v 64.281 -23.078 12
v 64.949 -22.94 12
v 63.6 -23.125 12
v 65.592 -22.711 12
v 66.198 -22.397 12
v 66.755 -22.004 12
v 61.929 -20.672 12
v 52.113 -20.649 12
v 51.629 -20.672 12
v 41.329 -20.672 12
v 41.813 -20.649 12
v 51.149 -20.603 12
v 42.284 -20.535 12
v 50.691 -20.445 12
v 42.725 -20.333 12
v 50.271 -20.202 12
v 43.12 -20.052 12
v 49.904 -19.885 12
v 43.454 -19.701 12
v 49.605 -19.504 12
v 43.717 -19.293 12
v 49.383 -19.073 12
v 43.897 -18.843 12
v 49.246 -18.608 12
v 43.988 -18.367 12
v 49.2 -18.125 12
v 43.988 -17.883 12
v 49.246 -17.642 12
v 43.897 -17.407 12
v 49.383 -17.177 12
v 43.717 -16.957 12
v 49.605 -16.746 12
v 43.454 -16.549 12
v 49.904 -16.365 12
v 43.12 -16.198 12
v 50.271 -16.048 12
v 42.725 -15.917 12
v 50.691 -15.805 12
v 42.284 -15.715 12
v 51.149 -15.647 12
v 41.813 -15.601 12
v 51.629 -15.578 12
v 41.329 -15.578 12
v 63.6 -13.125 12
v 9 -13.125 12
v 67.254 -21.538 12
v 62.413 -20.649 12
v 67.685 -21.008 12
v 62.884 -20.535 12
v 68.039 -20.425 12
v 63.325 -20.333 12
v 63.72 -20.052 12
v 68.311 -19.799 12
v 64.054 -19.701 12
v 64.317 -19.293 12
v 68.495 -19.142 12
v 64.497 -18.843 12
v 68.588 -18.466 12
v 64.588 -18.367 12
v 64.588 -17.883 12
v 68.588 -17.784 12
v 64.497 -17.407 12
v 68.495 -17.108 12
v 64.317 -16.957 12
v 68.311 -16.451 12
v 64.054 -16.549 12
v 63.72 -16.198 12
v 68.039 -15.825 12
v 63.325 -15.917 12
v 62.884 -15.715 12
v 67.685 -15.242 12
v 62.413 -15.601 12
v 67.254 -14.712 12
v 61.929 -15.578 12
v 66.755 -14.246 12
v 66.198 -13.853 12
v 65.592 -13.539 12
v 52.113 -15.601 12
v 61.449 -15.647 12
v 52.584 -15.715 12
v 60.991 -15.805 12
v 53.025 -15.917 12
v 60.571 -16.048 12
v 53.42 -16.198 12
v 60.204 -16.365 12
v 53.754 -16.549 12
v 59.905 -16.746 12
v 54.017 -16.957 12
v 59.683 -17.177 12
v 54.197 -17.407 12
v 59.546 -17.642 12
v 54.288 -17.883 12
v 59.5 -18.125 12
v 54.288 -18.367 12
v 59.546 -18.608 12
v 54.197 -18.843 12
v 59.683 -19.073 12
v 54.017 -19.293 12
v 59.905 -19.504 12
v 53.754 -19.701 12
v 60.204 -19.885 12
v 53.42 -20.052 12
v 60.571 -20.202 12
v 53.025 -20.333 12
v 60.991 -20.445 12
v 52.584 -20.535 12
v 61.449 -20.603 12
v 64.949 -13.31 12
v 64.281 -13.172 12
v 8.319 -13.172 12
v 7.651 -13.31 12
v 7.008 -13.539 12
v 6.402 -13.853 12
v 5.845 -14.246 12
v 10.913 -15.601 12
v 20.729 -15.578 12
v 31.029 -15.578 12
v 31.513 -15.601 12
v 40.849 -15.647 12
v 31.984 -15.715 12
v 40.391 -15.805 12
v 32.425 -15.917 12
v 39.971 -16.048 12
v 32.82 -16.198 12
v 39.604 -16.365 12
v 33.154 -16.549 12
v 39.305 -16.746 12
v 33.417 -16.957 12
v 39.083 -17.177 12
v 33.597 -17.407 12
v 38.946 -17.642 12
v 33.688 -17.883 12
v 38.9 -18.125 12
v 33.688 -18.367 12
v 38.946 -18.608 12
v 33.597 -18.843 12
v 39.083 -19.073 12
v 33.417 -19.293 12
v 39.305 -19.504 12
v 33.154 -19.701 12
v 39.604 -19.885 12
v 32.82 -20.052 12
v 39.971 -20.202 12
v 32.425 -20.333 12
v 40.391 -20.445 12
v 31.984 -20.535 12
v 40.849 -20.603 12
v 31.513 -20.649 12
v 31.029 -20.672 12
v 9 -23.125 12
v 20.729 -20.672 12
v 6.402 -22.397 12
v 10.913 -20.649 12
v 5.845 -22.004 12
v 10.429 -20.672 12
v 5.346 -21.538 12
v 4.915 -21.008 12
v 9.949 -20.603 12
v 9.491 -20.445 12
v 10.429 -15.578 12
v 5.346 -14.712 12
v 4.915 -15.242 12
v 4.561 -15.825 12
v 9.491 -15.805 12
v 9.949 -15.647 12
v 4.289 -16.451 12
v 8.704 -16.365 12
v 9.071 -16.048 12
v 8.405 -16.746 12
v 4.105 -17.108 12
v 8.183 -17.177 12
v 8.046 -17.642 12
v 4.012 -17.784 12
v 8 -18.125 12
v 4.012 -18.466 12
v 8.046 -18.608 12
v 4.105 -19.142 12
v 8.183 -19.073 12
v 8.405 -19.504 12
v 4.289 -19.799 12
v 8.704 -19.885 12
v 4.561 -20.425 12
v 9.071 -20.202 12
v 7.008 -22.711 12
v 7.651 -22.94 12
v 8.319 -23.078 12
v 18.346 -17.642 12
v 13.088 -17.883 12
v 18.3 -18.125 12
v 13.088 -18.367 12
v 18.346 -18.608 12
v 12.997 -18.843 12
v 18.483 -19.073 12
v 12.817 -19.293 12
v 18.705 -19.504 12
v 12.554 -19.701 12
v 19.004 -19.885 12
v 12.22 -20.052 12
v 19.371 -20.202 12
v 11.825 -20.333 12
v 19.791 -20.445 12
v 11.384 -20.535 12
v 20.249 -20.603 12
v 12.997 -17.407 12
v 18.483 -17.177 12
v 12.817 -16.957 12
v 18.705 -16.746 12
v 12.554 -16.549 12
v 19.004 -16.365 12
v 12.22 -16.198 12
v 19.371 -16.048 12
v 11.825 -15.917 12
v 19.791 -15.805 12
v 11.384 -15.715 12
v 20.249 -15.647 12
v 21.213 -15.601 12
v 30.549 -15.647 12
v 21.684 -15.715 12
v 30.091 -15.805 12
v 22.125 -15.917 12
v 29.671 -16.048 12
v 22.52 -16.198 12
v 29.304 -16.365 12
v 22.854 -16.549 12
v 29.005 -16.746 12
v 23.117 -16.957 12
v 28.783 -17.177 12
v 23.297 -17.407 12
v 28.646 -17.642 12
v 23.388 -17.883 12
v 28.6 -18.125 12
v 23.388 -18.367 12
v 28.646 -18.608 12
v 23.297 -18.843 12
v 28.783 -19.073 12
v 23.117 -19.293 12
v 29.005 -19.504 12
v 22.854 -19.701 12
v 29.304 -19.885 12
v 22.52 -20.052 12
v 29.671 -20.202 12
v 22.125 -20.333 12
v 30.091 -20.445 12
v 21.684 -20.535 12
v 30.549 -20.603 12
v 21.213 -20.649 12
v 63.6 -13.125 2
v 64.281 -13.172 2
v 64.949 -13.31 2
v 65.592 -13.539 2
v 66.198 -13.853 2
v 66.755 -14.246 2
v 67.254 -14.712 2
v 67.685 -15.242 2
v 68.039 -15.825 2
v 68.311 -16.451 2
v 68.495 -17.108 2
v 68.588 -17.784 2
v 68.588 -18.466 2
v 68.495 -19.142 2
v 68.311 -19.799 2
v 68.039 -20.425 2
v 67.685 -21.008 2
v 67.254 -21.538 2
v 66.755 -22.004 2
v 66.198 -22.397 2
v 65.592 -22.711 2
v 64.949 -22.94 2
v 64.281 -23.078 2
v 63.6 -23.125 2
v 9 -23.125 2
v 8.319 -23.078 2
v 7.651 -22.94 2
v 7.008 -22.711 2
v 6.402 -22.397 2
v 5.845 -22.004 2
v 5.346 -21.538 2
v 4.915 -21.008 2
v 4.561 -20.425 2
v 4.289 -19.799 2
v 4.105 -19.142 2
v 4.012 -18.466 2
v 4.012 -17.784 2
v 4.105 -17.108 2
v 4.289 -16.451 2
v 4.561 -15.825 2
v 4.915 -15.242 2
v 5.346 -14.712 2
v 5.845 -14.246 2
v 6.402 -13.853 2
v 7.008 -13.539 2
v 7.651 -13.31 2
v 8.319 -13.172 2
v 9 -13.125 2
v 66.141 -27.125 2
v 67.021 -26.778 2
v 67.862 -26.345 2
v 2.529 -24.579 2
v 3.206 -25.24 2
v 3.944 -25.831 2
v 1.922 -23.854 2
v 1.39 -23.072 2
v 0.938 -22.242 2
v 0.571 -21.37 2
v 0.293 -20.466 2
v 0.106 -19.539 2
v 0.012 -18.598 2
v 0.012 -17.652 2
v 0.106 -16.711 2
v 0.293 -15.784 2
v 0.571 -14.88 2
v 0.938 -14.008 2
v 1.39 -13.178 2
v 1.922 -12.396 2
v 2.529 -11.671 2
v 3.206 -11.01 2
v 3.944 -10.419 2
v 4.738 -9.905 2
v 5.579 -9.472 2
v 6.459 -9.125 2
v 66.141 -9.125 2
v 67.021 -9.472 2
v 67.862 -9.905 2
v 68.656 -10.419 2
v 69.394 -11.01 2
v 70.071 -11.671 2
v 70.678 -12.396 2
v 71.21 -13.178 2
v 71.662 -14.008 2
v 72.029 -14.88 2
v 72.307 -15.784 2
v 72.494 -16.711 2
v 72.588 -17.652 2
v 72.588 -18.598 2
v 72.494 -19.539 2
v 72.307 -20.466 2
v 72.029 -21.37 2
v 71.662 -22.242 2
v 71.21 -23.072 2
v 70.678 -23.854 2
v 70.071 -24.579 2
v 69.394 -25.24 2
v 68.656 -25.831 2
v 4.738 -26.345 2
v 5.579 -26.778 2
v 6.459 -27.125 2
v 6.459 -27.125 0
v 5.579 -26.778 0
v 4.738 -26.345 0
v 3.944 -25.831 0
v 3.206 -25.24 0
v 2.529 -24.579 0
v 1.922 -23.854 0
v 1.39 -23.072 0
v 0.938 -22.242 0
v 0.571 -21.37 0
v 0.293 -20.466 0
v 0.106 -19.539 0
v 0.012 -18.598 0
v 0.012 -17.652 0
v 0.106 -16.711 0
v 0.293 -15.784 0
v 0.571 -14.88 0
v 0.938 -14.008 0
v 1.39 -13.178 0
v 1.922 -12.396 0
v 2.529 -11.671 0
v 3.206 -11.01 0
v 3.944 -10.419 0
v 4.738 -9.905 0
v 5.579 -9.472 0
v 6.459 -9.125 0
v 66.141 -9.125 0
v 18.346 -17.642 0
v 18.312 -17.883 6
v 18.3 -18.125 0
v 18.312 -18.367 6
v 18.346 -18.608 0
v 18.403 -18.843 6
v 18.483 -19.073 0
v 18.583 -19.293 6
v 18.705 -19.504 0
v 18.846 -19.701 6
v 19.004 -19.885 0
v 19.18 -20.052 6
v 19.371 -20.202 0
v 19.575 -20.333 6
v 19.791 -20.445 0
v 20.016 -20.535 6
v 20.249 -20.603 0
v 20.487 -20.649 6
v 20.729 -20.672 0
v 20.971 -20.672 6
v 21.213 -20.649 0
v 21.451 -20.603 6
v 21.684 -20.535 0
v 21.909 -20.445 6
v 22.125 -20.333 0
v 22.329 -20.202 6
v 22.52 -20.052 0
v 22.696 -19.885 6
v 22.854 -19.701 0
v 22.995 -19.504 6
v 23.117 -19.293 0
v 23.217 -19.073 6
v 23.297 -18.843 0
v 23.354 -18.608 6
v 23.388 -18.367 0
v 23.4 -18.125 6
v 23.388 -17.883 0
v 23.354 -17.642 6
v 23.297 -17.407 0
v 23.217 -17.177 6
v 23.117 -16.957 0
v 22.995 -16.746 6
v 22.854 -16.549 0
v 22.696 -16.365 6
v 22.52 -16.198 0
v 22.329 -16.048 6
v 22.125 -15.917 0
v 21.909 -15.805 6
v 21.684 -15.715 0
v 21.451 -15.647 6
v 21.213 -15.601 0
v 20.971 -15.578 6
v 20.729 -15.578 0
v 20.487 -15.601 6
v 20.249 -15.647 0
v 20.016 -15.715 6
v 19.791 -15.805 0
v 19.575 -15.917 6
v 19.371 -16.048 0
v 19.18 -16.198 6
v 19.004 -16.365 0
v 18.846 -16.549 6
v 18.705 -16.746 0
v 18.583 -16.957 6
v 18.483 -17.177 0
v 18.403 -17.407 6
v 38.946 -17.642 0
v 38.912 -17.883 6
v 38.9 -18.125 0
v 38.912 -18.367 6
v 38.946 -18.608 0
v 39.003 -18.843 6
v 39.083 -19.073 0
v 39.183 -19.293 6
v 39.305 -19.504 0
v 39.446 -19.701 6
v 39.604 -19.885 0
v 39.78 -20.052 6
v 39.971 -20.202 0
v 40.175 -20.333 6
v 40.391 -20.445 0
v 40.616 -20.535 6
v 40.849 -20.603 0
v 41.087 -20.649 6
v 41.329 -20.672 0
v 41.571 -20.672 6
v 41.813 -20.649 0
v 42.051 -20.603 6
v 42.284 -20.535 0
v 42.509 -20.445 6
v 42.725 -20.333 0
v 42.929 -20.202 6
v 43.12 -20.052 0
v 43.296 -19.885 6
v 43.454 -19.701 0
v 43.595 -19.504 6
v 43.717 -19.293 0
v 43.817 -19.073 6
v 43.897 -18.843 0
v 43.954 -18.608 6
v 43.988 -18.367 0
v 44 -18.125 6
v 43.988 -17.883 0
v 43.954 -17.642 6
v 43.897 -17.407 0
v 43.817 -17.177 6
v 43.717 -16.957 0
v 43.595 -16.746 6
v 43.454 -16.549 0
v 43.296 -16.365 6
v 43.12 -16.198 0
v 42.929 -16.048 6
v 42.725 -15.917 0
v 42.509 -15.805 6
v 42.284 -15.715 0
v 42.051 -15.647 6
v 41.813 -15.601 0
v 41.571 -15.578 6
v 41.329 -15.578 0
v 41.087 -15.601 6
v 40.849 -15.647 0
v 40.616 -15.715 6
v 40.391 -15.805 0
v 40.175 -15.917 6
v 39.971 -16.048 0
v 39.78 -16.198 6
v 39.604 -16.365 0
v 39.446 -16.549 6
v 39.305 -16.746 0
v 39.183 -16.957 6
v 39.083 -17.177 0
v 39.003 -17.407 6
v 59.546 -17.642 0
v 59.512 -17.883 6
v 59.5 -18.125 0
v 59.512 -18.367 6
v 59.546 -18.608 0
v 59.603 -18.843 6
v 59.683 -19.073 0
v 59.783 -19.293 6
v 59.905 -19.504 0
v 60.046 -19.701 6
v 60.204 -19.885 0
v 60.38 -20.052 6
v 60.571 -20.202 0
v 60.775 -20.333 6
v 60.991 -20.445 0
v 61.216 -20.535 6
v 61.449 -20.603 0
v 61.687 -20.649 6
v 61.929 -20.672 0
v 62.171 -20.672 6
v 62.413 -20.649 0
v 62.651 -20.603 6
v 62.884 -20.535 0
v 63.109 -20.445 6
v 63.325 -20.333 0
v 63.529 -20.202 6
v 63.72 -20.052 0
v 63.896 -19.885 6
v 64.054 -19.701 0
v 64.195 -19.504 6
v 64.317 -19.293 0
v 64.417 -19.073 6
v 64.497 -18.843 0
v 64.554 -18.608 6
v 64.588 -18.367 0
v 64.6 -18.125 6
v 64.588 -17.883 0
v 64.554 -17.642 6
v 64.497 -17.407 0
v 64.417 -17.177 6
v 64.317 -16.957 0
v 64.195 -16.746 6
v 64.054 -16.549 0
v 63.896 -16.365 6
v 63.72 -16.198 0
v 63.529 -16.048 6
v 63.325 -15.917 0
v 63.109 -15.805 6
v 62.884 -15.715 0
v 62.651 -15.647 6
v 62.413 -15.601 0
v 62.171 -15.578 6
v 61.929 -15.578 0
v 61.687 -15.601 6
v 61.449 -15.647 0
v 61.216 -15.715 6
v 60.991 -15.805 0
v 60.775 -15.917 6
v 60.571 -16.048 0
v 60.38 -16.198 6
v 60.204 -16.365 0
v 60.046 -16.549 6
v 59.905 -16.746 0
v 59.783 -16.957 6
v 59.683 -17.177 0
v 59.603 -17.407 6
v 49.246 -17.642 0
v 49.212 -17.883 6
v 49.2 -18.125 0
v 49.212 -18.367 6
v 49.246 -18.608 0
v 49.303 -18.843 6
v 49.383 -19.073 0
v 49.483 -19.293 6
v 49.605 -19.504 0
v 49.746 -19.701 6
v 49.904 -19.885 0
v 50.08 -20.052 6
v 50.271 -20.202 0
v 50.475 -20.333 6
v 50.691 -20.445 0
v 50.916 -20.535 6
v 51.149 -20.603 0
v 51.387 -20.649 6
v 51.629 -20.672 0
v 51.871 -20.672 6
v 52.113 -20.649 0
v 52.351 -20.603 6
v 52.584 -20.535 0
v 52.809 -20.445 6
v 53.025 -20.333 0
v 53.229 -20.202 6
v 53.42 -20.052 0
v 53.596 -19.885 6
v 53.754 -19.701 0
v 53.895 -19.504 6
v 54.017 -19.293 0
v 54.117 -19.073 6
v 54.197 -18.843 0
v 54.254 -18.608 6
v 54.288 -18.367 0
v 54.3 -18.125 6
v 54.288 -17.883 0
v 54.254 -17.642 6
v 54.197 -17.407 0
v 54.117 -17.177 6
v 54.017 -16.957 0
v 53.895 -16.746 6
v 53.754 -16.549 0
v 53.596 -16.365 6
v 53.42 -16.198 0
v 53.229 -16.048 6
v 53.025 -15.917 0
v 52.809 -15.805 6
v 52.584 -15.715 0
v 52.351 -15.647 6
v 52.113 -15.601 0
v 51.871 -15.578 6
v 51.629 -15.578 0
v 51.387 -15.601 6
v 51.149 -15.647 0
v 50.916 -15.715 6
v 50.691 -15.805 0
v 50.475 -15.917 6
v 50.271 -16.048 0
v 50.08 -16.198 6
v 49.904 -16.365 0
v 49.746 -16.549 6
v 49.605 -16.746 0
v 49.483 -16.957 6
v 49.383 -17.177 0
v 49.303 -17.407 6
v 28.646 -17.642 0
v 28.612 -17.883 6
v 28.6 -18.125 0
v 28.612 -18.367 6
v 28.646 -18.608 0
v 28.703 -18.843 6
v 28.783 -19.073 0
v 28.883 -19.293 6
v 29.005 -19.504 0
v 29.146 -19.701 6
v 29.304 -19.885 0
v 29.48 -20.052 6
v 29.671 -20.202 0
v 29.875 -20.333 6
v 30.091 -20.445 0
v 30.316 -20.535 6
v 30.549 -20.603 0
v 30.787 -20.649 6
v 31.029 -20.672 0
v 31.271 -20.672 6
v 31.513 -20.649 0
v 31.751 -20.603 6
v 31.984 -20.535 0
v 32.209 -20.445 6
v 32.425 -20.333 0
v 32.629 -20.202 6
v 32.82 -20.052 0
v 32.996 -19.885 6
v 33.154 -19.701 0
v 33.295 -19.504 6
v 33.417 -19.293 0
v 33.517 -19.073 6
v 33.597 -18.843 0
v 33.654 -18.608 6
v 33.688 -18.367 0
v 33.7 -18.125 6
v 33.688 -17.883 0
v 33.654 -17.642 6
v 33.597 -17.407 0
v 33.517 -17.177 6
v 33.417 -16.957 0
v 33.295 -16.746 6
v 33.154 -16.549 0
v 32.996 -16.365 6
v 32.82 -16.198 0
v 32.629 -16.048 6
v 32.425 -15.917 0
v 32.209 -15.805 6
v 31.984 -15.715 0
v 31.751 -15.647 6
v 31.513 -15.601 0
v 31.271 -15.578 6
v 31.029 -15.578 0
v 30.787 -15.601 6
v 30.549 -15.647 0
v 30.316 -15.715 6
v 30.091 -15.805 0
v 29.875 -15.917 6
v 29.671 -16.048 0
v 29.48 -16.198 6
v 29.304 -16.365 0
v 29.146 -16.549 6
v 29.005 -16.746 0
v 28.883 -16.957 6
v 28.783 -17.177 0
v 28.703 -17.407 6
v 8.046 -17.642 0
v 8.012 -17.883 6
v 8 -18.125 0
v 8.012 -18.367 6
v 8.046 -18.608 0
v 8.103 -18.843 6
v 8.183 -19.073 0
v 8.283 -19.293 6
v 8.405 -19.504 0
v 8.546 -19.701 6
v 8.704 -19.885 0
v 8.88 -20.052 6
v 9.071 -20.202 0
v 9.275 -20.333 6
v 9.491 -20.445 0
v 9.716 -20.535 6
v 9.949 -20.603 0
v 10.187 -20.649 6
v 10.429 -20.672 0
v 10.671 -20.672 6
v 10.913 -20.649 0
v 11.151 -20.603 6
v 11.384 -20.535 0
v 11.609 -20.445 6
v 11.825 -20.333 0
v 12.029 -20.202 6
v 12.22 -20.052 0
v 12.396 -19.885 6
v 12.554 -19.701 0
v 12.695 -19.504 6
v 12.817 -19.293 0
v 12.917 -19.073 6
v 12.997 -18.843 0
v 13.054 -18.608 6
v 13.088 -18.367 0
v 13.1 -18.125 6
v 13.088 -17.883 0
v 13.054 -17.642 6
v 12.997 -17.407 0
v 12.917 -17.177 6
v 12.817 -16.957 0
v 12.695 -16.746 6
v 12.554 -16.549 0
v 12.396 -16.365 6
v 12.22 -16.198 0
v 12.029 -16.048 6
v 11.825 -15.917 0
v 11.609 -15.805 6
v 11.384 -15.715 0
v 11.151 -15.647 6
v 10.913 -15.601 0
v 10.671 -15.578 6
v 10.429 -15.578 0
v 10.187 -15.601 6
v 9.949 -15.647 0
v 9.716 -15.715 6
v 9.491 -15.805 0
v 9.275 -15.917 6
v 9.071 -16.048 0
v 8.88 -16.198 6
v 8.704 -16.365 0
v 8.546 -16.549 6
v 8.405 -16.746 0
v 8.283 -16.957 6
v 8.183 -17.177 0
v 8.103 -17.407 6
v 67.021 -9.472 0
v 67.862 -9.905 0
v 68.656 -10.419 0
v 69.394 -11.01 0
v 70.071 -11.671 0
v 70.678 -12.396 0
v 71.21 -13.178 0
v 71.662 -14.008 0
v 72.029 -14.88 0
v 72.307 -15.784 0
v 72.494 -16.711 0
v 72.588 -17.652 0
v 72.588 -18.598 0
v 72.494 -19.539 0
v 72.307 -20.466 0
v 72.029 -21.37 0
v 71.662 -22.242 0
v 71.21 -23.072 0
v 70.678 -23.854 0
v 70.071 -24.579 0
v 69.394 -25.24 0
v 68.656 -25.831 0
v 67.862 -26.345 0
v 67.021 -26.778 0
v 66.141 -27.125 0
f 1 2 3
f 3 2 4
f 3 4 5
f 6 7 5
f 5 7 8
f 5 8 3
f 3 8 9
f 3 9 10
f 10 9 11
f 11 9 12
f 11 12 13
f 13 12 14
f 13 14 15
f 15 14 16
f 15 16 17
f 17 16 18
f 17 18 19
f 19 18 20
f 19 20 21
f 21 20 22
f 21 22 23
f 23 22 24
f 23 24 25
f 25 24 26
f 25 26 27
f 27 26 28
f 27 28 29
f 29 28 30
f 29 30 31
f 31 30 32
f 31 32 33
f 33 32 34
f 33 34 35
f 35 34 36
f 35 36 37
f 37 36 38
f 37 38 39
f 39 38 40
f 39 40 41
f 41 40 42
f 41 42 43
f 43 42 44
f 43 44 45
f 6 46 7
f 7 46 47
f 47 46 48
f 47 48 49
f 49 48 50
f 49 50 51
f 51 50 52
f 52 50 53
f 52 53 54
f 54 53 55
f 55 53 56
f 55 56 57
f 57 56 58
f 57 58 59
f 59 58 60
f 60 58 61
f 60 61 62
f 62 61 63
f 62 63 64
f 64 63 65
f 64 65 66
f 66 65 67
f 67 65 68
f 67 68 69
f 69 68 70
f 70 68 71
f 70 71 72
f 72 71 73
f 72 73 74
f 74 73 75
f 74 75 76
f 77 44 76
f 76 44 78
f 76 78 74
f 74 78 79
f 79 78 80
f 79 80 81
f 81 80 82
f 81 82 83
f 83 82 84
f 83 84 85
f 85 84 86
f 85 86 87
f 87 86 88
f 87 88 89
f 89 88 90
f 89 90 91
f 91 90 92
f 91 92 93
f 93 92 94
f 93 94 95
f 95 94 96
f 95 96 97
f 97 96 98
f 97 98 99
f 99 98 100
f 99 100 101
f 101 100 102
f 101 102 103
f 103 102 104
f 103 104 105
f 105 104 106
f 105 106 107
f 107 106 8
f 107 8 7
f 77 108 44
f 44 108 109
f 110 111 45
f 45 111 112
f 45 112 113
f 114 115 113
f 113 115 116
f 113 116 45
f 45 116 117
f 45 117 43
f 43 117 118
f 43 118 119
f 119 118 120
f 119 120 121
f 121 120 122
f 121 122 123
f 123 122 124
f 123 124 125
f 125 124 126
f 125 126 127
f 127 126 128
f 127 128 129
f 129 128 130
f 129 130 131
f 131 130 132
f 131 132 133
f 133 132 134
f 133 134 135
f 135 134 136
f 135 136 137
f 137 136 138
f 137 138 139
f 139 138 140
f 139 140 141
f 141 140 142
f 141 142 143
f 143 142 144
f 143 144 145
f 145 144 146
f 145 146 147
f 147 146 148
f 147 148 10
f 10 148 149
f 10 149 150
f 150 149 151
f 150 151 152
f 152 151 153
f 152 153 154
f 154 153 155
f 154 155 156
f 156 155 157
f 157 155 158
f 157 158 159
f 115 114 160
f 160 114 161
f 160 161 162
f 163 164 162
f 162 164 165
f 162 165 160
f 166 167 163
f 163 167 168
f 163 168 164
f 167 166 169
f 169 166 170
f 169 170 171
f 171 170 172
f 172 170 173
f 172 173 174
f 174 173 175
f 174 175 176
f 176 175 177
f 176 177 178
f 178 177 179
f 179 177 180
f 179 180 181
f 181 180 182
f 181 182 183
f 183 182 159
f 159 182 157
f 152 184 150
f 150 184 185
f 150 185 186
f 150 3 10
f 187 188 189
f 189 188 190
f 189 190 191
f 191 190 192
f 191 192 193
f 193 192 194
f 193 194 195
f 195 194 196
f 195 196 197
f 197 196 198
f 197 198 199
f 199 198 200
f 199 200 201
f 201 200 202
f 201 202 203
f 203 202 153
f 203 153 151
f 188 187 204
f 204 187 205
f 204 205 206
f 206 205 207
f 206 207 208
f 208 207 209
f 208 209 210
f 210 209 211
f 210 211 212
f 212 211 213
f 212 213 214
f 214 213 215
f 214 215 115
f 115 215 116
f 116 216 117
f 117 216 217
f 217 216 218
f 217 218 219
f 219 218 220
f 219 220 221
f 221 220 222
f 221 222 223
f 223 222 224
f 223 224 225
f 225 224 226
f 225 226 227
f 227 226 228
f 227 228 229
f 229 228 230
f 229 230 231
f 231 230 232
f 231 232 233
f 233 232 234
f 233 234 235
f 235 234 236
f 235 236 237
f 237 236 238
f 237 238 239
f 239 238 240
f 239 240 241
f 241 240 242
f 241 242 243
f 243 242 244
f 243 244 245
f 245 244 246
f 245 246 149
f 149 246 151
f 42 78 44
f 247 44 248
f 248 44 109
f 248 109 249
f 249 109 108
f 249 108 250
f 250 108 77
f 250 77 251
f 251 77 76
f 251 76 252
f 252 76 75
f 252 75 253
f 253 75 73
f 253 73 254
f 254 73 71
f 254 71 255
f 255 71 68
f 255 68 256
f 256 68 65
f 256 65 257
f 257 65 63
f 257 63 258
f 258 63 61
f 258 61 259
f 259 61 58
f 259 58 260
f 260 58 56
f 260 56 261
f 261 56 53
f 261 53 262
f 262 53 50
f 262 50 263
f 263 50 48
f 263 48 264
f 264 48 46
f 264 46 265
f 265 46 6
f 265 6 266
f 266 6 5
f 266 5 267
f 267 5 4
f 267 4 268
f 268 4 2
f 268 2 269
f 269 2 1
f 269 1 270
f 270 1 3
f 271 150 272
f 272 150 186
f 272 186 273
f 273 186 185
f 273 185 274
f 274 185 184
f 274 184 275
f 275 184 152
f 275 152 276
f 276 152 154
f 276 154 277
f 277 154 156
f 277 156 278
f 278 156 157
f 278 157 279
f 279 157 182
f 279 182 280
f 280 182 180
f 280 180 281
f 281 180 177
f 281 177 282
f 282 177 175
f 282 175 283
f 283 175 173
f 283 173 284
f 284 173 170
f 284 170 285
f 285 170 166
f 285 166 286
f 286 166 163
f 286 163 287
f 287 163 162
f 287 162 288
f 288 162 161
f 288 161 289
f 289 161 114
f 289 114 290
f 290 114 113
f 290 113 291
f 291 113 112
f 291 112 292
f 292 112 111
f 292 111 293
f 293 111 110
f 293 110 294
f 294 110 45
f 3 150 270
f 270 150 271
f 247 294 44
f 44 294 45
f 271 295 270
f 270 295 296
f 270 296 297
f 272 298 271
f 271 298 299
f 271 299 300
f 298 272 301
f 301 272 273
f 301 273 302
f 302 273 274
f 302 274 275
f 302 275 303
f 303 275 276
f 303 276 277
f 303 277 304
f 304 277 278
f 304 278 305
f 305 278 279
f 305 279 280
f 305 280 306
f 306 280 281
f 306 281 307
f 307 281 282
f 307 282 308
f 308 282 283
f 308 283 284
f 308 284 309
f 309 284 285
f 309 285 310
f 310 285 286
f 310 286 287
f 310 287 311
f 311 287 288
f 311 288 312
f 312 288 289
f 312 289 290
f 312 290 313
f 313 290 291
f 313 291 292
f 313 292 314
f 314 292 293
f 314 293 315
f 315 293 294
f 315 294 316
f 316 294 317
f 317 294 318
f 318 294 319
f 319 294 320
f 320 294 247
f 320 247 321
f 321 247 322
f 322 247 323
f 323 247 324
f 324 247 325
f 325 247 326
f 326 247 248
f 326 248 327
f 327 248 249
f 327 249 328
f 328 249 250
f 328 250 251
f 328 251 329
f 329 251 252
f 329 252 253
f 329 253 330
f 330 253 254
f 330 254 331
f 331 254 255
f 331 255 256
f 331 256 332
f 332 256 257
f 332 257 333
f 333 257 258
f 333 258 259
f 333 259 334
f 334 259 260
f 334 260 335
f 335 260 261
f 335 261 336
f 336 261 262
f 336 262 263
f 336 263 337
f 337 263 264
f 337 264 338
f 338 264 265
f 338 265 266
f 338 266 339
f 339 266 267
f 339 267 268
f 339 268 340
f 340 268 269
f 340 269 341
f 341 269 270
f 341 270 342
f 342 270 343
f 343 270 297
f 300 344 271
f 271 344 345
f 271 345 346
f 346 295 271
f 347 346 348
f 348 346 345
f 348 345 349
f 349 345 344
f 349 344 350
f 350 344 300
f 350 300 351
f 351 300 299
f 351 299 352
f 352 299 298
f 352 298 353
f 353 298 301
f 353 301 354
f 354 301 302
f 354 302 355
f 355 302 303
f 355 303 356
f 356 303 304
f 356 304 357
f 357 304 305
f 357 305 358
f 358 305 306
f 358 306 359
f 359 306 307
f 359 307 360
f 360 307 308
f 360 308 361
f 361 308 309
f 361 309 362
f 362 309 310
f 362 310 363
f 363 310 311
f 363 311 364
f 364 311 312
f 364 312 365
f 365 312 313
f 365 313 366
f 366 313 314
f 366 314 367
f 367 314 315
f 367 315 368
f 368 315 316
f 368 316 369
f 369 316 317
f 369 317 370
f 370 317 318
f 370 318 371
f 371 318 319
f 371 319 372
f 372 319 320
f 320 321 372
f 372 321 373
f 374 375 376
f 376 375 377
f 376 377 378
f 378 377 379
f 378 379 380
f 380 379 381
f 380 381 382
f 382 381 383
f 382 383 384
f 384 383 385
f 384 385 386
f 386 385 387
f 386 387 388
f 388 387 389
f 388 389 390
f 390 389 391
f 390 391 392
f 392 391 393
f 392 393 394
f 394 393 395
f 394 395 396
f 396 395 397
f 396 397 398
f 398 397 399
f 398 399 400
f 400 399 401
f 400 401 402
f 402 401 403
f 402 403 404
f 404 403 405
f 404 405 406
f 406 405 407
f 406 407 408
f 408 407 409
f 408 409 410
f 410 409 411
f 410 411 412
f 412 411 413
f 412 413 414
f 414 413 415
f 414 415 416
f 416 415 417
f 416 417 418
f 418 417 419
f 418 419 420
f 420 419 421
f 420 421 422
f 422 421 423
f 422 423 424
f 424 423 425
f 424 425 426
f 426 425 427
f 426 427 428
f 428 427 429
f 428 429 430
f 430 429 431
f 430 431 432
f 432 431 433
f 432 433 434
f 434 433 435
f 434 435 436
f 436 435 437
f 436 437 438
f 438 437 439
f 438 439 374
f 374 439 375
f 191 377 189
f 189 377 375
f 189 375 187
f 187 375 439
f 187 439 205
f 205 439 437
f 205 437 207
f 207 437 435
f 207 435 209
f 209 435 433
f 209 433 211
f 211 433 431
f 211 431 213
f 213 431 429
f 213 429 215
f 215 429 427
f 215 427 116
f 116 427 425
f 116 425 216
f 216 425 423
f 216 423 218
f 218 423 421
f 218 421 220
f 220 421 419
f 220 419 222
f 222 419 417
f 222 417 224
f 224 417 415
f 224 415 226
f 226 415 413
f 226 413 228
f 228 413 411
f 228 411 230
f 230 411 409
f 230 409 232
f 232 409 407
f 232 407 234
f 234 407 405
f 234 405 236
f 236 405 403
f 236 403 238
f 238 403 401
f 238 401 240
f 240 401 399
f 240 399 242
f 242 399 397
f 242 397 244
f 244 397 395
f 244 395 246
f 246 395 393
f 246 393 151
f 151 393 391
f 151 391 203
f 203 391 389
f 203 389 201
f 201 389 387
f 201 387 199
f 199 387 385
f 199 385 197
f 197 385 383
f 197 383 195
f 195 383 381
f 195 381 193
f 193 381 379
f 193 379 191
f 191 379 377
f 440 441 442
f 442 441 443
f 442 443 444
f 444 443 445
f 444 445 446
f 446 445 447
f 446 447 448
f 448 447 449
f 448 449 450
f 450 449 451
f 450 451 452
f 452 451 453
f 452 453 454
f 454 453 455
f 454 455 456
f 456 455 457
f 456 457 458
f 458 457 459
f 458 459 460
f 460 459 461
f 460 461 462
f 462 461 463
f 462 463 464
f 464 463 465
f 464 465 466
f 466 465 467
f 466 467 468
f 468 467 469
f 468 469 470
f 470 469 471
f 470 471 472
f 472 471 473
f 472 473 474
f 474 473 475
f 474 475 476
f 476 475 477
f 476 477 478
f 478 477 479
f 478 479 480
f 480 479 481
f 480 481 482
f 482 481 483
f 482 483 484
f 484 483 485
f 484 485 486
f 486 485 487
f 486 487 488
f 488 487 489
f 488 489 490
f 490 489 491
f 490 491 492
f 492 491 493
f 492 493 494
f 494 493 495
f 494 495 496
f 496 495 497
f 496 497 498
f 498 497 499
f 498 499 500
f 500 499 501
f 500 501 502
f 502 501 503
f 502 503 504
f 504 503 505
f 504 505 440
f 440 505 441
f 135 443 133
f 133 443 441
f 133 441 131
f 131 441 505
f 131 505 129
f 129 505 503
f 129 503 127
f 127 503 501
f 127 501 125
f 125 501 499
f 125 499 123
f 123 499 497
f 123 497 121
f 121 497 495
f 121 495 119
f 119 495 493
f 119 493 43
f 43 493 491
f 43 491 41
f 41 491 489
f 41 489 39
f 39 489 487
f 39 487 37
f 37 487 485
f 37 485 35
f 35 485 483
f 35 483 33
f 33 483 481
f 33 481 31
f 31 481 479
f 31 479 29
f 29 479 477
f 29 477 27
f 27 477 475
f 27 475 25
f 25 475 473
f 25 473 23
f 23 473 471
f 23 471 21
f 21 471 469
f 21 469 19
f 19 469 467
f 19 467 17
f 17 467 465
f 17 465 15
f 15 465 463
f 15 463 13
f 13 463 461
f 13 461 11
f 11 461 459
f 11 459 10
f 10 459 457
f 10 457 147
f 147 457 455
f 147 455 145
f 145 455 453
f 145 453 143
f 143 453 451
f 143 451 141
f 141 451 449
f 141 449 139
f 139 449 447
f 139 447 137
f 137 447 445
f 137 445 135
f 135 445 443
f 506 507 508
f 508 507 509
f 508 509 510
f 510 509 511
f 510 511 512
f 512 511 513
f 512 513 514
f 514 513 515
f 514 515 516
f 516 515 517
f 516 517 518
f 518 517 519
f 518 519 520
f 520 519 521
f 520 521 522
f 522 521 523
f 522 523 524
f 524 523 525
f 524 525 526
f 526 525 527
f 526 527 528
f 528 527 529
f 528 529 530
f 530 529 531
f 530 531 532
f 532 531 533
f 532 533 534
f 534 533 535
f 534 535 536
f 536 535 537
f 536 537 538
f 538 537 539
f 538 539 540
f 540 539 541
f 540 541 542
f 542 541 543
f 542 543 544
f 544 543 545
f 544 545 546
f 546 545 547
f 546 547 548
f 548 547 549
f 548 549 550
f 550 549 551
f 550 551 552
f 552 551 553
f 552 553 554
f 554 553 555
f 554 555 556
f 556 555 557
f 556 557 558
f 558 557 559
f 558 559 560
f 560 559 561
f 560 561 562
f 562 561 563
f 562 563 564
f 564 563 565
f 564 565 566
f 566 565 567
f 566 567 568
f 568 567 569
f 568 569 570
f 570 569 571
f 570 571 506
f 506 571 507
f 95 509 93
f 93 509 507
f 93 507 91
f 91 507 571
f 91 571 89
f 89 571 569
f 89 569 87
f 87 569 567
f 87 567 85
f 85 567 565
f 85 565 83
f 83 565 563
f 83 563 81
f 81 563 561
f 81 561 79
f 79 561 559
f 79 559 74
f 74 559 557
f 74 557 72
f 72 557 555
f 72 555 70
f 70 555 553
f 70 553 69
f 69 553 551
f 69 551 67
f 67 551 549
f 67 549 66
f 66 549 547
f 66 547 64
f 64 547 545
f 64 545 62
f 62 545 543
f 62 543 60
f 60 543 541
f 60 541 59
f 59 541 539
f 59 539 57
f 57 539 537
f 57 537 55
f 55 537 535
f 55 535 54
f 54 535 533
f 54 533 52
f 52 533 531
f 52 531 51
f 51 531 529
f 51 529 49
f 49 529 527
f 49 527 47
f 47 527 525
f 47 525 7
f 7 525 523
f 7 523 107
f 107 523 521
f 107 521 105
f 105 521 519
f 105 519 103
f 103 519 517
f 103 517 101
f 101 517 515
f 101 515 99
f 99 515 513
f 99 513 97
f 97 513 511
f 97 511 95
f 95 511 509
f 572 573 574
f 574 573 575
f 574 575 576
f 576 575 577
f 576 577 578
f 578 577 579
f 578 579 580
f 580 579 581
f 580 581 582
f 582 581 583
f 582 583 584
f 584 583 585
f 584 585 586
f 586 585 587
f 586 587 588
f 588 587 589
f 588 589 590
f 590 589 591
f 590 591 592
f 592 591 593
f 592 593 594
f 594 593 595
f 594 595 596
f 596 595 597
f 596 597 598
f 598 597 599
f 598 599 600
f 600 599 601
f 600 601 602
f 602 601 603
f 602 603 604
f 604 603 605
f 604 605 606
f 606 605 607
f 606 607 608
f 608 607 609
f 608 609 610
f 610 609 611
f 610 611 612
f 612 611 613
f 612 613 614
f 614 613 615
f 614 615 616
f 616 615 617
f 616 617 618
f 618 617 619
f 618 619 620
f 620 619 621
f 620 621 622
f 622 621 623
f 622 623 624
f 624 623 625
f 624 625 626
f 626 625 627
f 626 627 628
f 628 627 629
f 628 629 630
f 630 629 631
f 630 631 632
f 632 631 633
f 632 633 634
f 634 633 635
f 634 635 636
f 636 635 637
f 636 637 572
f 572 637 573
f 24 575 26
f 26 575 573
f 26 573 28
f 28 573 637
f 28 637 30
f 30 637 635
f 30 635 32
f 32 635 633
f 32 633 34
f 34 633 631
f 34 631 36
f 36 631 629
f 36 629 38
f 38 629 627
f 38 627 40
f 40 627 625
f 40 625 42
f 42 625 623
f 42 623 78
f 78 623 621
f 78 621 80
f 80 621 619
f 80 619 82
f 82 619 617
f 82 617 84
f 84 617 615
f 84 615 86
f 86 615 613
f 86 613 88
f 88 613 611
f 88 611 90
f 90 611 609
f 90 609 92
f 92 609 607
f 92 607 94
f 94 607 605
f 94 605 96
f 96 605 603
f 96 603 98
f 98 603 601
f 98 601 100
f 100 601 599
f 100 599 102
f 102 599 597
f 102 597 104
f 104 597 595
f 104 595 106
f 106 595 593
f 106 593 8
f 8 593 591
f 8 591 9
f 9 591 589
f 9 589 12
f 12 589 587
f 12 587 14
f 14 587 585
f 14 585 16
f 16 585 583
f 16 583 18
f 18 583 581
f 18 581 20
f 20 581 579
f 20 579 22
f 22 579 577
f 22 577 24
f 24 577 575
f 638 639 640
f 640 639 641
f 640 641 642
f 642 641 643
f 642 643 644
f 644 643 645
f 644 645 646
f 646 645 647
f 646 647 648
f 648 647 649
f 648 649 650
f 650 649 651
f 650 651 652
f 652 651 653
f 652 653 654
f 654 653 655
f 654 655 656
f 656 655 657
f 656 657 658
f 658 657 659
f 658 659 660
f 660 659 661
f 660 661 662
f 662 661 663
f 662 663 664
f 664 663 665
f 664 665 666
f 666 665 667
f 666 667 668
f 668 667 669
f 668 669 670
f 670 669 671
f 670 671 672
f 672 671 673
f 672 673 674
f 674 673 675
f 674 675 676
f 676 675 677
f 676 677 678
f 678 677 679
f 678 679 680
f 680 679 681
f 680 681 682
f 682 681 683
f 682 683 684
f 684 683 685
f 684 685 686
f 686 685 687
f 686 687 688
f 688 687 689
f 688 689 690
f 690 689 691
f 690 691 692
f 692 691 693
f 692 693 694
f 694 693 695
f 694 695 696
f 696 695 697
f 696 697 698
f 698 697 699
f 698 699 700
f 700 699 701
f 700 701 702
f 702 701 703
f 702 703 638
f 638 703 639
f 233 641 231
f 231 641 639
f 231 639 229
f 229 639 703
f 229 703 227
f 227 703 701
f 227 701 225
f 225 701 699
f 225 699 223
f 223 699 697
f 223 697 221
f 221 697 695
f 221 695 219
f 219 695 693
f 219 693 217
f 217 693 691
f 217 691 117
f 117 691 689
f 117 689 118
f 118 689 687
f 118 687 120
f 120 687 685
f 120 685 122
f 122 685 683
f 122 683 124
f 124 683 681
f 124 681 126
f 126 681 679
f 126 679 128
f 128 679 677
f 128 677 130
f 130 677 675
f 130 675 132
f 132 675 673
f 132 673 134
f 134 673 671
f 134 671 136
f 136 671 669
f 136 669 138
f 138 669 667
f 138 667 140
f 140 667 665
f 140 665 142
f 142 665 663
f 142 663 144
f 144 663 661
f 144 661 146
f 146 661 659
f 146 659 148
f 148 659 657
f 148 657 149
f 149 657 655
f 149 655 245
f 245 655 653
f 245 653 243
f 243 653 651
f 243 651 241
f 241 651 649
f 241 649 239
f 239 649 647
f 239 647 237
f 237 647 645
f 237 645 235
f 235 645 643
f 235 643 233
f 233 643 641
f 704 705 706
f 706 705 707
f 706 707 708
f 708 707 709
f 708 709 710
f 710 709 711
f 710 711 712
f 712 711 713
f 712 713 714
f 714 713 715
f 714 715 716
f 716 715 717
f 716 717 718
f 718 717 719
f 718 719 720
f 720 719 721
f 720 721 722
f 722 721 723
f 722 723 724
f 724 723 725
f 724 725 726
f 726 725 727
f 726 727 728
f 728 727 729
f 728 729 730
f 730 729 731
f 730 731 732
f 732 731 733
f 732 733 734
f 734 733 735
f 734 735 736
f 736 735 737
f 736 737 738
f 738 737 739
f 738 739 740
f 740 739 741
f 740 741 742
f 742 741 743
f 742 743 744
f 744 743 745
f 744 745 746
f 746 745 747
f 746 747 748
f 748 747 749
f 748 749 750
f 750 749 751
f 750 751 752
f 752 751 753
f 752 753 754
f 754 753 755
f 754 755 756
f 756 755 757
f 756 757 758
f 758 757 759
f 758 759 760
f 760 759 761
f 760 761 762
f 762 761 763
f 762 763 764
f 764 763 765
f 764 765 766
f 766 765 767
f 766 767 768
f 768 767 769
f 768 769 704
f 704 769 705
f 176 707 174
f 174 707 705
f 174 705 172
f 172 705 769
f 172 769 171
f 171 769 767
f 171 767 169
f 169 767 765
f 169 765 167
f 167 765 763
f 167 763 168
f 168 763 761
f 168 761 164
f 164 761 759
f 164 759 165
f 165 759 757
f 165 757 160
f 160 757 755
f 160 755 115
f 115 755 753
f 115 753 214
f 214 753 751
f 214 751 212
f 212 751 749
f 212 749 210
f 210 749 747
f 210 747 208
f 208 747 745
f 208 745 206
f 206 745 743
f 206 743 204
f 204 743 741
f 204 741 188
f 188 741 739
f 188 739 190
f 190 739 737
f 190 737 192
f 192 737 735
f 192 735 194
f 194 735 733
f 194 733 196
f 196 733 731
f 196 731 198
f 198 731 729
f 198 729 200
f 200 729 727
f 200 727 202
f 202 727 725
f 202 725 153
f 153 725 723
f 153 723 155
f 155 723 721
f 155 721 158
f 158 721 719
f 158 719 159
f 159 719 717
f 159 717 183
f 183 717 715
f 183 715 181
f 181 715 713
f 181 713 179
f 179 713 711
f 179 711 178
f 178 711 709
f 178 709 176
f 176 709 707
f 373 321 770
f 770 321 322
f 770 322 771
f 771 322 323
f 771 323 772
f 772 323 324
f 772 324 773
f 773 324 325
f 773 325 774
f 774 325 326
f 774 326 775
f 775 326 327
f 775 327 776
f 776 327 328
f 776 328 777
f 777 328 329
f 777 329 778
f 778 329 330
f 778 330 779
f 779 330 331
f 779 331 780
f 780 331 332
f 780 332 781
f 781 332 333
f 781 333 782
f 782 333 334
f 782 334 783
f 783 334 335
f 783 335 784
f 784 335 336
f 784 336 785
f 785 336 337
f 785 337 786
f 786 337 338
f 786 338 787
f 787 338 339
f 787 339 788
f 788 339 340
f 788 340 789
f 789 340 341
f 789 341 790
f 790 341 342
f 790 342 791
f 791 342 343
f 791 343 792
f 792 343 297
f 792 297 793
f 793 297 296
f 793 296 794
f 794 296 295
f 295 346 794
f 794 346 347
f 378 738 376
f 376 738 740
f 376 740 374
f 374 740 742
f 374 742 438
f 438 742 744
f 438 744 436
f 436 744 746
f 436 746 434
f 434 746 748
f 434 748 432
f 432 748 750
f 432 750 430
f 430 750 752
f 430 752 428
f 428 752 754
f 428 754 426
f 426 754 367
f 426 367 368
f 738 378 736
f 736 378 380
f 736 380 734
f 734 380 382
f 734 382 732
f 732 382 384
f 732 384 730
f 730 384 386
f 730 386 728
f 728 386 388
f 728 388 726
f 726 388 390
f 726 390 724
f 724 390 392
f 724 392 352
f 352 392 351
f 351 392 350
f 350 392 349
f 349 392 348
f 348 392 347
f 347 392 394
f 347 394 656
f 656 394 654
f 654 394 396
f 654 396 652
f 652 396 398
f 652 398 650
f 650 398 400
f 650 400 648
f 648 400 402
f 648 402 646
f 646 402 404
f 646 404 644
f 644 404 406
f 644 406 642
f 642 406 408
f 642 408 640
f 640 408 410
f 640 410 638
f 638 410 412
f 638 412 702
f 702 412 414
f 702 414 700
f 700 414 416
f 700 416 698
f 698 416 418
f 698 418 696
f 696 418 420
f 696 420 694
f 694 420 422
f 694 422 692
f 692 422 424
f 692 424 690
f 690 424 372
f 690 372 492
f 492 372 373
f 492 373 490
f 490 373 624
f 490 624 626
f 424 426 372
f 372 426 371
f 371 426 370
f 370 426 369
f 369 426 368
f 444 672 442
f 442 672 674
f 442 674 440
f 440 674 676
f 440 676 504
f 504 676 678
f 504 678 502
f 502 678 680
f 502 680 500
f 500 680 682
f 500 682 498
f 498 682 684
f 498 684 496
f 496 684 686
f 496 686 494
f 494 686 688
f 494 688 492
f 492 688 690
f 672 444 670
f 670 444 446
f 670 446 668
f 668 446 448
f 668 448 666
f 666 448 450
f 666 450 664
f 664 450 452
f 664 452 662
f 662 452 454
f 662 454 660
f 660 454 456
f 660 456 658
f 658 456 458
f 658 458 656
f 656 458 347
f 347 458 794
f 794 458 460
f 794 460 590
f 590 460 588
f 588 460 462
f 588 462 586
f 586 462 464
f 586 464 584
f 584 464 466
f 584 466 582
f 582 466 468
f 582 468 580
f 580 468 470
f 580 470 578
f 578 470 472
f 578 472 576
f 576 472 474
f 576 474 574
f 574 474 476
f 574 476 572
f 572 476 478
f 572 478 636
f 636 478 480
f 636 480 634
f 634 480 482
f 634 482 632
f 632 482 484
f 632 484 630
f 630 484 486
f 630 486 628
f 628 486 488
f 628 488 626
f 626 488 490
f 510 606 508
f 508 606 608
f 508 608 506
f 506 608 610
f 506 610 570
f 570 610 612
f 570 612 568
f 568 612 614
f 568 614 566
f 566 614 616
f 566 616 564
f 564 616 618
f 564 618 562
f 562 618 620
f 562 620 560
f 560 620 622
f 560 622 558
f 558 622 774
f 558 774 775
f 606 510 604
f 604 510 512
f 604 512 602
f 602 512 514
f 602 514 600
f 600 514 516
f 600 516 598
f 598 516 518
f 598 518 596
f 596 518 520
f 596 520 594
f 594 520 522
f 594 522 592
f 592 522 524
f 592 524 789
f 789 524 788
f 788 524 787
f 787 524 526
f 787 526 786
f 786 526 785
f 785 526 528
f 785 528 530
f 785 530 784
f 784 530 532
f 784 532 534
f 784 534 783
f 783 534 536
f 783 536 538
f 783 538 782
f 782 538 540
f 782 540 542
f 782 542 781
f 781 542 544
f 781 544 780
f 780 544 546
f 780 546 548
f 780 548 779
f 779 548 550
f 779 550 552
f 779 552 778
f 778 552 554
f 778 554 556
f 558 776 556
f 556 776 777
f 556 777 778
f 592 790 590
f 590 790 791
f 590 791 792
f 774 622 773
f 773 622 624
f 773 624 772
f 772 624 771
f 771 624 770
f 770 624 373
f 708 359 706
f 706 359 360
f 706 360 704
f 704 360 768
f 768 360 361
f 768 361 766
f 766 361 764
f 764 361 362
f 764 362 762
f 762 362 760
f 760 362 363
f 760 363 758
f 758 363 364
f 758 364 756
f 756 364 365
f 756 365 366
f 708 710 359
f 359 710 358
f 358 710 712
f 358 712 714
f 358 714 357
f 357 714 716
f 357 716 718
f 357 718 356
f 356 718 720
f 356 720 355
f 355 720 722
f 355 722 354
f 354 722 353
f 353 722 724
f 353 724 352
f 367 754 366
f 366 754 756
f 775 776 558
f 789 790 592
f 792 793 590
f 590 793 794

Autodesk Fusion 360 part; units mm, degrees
sketch "スケッチ1" plane through (0, 0, 0) normal (0, 0, 1) x (1, 0, 0)
  line L0 (0, 0) -> (72.6, 0)
  line L1 (72.6, 0) -> (72.6, -36.25)
  line L2 (72.6, -36.25) -> (0, -36.25)
  line L3 (0, -36.25) -> (0, 0)
  line L4 (36.3, 0) -> (36.3, -36.25)
  line L5 (0, -18.125) -> (72.6, -18.125)
  line L6 (72.6, -8.625) -> (72.6, -26.625)
  line L7 (58.3, -36.25) -> (14.3, -36.25)
  line L8 (0, -9.125) -> (0, -27.125)
  line L9 (0, -18.125) -> (9.5, -18.125)
  line L10 (0, -9.125) -> (6.4586, -9.125)
  line L11 (0, -27.125) -> (4.6488, -27.125)
  line L12 (6.4586, -9.125) -> (36.3, 0)
  line L13 (14.3, -36.25) -> (12.3, -36.25)
  line L14 (12.3, -36.25) -> (2.2204, -24.2289)
  line L15 (36.3, -18.125) -> (36.3, -32.425)
  line L16 (36.3, -18.125) -> (36.3, -3.825)
  line L17 (66.1414, -9.125) -> (36.3, 0)
  line L18 (60.3, -36.25) -> (70.3796, -24.2289)
  line L19 (58.3, -36.25) -> (60.3, -36.25)
  line L20 (6.4586, -27.125) -> (66.1414, -27.125)
  line L21 (6.4586, -9.125) -> (66.1414, -9.125)
  arc A0 (6.9878, -8.9632) -> (6.4586, -27.125) centre (9.5, -18.125) ccw
  arc A1 (66.1414, -27.125) -> (65.6122, -8.9632) centre (63.1, -18.125) ccw
  circle A2 centre (14.3, -32.425) radius 1.75
  circle A3 centre (36.3, -3.825) radius 1.75
  circle A4 centre (58.3, -32.425) radius 1.75
  circle A5 centre (32.3, -32.425) radius 1
  circle A6 centre (40.3, -32.425) radius 1
  point P0 (36.3, -18.125)
  point P1 (36.3, -3.825)
  point P2 (14.3, -32.425)
  point P3 (58.3, -32.425)
  point P4 (40.3, -32.425)
  point P5 (40.3, -32.425)
  point P6 (32.3, -32.425)
  dimension "d5" = 72.6
  dimension "d6" = 36.25
  dimension "d10" = 44
  dimension "d11" = 9
  dimension "d12" = 18
  dimension "d13" = 9.5
  dimension "d14" = 2
  dimension "d15" = 14.3
  dimension "d16" = 22
  dimension "d17" = 14.3
  dimension "d18" = 3.5
  dimension "d19" = 3.5
  dimension "d20" = 3.5
  dimension "d21" = 4
  dimension "d24" = 2
  dimension "d25" = 2
extrude "押し出し2" add sketch "スケッチ1" along normal blind 12 contours L4 L5 L9 L16 L21 A0 | L4 L5 L9 L15 L20 A0 | L4 L5 L16 L21 A1 | L4 L5 L15 L20 A1
sketch "スケッチ3" plane through (0, 0, 0) normal (0, 0, -1) x (1, 0, 0)
  arc A0 (6.4586, 27.125) -> (6.4586, 9.125) centre (9.5, 18.125) ccw
  line L0 (6.4586, 9.125) -> (66.1414, 9.125)
  arc A1 (66.1414, 9.125) -> (66.1414, 27.125) centre (63.1, 18.125) ccw
  line L1 (66.1414, 27.125) -> (6.4586, 27.125)
  line L2 (72.6, 18.125) -> (0, 18.125)
  line L3 (72.6, 18.125) -> (36.3, 18.125)
  line L4 (36.3, 18.125) -> (31.15, 18.125)
  line L5 (31.15, 18.125) -> (20.85, 18.125)
  line L6 (20.85, 18.125) -> (10.55, 18.125)
  line L7 (36.3, 18.125) -> (36.3, 27.125)
  point P0 (36.3, 18.125)
  point P1 (31.15, 18.125)
  point P2 (20.85, 18.125)
  point P3 (10.55, 18.125)
  point P4 (41.45, 18.125)
  point P5 (51.75, 18.125)
  point P6 (62.05, 18.125)
  dimension "d32" = 5.15
  dimension "d33" = 10.3
  dimension "d34" = 10.3
hole "穴1" at (62.05, -18.125, 0) at (51.75, -18.125, 0) at (41.45, -18.125, 0) at (31.15, -18.125, 0) at (20.85, -18.125, 0) at (10.55, -18.125, 0) direction (0, 0, 1) diameter 5.1 depth 12 tip angle 180
sketch "スケッチ4" plane through (0, 0, 12) normal (0, 0, 1) x (-1, 0, 0)
  circle A0 centre (-20.85, 18.125) radius 2.55
  circle A1 centre (-41.45, 18.125) radius 2.55
  circle A2 centre (-62.05, 18.125) radius 2.55
  circle A3 centre (-51.75, 18.125) radius 2.55
  circle A4 centre (-31.15, 18.125) radius 2.55
  circle A5 centre (-10.55, 18.125) radius 2.55
  arc A6 (-6.4586, 9.125) -> (-6.4586, 27.125) centre (-9.5, 18.125) ccw
  line L0 (-6.4586, 27.125) -> (-66.1414, 27.125)
  arc A7 (-66.1414, 27.125) -> (-66.1414, 9.125) centre (-63.1, 18.125) ccw
  line L1 (-66.1414, 9.125) -> (-6.4586, 9.125)
  line L2 (0, 18.125) -> (-4, 18.125)
  line L3 (-36.3, 13.125) -> (-5.4223, 13.125)
  line L4 (-4, 18.125) -> (-13.5, 18.125)
  line L5 (-36.3, 23.125) -> (-5.4223, 23.125)
  line L6 (-36.3, 23.125) -> (-36.3, 27.125)
  arc A8 (-5.4223, 13.125) -> (-5.4223, 23.125) centre (-13.5, 18.125) ccw
  line L7 (-36.3, 13.125) -> (-67.1777, 13.125)
  arc A9 (-67.1777, 23.125) -> (-67.1777, 13.125) centre (-59.1, 18.125) ccw
  line L8 (-36.3, 23.125) -> (-67.1777, 23.125)
  line L9 (-36.3, 23.125) -> (-36.3, 13.125)
  line L10 (-31.15, 18.125) -> (-41.45, 18.125)
  point P0 (-68.6, 18.125)
  dimension "d39" = 9.5
  dimension "d40" = 4
  dimension "d45" = 4
  dimension "d46" = 5.1
  dimension "d47" = 9.5
  dimension "d48" = 10.3
extrude "押し出し3" cut sketch "スケッチ4" against normal blind 10 contours A6 L0 L2 L5 L6 A8 | A6 L0 A7 L1 L2 L3 L6 A8 L7 A9 L8
fillet "フィレット2" radius 5 4 edges at (5.4223, -23.125, 7) (5.4223, -13.125, 7) (67.1777, -13.125, 7) (67.1777, -23.125, 7)
